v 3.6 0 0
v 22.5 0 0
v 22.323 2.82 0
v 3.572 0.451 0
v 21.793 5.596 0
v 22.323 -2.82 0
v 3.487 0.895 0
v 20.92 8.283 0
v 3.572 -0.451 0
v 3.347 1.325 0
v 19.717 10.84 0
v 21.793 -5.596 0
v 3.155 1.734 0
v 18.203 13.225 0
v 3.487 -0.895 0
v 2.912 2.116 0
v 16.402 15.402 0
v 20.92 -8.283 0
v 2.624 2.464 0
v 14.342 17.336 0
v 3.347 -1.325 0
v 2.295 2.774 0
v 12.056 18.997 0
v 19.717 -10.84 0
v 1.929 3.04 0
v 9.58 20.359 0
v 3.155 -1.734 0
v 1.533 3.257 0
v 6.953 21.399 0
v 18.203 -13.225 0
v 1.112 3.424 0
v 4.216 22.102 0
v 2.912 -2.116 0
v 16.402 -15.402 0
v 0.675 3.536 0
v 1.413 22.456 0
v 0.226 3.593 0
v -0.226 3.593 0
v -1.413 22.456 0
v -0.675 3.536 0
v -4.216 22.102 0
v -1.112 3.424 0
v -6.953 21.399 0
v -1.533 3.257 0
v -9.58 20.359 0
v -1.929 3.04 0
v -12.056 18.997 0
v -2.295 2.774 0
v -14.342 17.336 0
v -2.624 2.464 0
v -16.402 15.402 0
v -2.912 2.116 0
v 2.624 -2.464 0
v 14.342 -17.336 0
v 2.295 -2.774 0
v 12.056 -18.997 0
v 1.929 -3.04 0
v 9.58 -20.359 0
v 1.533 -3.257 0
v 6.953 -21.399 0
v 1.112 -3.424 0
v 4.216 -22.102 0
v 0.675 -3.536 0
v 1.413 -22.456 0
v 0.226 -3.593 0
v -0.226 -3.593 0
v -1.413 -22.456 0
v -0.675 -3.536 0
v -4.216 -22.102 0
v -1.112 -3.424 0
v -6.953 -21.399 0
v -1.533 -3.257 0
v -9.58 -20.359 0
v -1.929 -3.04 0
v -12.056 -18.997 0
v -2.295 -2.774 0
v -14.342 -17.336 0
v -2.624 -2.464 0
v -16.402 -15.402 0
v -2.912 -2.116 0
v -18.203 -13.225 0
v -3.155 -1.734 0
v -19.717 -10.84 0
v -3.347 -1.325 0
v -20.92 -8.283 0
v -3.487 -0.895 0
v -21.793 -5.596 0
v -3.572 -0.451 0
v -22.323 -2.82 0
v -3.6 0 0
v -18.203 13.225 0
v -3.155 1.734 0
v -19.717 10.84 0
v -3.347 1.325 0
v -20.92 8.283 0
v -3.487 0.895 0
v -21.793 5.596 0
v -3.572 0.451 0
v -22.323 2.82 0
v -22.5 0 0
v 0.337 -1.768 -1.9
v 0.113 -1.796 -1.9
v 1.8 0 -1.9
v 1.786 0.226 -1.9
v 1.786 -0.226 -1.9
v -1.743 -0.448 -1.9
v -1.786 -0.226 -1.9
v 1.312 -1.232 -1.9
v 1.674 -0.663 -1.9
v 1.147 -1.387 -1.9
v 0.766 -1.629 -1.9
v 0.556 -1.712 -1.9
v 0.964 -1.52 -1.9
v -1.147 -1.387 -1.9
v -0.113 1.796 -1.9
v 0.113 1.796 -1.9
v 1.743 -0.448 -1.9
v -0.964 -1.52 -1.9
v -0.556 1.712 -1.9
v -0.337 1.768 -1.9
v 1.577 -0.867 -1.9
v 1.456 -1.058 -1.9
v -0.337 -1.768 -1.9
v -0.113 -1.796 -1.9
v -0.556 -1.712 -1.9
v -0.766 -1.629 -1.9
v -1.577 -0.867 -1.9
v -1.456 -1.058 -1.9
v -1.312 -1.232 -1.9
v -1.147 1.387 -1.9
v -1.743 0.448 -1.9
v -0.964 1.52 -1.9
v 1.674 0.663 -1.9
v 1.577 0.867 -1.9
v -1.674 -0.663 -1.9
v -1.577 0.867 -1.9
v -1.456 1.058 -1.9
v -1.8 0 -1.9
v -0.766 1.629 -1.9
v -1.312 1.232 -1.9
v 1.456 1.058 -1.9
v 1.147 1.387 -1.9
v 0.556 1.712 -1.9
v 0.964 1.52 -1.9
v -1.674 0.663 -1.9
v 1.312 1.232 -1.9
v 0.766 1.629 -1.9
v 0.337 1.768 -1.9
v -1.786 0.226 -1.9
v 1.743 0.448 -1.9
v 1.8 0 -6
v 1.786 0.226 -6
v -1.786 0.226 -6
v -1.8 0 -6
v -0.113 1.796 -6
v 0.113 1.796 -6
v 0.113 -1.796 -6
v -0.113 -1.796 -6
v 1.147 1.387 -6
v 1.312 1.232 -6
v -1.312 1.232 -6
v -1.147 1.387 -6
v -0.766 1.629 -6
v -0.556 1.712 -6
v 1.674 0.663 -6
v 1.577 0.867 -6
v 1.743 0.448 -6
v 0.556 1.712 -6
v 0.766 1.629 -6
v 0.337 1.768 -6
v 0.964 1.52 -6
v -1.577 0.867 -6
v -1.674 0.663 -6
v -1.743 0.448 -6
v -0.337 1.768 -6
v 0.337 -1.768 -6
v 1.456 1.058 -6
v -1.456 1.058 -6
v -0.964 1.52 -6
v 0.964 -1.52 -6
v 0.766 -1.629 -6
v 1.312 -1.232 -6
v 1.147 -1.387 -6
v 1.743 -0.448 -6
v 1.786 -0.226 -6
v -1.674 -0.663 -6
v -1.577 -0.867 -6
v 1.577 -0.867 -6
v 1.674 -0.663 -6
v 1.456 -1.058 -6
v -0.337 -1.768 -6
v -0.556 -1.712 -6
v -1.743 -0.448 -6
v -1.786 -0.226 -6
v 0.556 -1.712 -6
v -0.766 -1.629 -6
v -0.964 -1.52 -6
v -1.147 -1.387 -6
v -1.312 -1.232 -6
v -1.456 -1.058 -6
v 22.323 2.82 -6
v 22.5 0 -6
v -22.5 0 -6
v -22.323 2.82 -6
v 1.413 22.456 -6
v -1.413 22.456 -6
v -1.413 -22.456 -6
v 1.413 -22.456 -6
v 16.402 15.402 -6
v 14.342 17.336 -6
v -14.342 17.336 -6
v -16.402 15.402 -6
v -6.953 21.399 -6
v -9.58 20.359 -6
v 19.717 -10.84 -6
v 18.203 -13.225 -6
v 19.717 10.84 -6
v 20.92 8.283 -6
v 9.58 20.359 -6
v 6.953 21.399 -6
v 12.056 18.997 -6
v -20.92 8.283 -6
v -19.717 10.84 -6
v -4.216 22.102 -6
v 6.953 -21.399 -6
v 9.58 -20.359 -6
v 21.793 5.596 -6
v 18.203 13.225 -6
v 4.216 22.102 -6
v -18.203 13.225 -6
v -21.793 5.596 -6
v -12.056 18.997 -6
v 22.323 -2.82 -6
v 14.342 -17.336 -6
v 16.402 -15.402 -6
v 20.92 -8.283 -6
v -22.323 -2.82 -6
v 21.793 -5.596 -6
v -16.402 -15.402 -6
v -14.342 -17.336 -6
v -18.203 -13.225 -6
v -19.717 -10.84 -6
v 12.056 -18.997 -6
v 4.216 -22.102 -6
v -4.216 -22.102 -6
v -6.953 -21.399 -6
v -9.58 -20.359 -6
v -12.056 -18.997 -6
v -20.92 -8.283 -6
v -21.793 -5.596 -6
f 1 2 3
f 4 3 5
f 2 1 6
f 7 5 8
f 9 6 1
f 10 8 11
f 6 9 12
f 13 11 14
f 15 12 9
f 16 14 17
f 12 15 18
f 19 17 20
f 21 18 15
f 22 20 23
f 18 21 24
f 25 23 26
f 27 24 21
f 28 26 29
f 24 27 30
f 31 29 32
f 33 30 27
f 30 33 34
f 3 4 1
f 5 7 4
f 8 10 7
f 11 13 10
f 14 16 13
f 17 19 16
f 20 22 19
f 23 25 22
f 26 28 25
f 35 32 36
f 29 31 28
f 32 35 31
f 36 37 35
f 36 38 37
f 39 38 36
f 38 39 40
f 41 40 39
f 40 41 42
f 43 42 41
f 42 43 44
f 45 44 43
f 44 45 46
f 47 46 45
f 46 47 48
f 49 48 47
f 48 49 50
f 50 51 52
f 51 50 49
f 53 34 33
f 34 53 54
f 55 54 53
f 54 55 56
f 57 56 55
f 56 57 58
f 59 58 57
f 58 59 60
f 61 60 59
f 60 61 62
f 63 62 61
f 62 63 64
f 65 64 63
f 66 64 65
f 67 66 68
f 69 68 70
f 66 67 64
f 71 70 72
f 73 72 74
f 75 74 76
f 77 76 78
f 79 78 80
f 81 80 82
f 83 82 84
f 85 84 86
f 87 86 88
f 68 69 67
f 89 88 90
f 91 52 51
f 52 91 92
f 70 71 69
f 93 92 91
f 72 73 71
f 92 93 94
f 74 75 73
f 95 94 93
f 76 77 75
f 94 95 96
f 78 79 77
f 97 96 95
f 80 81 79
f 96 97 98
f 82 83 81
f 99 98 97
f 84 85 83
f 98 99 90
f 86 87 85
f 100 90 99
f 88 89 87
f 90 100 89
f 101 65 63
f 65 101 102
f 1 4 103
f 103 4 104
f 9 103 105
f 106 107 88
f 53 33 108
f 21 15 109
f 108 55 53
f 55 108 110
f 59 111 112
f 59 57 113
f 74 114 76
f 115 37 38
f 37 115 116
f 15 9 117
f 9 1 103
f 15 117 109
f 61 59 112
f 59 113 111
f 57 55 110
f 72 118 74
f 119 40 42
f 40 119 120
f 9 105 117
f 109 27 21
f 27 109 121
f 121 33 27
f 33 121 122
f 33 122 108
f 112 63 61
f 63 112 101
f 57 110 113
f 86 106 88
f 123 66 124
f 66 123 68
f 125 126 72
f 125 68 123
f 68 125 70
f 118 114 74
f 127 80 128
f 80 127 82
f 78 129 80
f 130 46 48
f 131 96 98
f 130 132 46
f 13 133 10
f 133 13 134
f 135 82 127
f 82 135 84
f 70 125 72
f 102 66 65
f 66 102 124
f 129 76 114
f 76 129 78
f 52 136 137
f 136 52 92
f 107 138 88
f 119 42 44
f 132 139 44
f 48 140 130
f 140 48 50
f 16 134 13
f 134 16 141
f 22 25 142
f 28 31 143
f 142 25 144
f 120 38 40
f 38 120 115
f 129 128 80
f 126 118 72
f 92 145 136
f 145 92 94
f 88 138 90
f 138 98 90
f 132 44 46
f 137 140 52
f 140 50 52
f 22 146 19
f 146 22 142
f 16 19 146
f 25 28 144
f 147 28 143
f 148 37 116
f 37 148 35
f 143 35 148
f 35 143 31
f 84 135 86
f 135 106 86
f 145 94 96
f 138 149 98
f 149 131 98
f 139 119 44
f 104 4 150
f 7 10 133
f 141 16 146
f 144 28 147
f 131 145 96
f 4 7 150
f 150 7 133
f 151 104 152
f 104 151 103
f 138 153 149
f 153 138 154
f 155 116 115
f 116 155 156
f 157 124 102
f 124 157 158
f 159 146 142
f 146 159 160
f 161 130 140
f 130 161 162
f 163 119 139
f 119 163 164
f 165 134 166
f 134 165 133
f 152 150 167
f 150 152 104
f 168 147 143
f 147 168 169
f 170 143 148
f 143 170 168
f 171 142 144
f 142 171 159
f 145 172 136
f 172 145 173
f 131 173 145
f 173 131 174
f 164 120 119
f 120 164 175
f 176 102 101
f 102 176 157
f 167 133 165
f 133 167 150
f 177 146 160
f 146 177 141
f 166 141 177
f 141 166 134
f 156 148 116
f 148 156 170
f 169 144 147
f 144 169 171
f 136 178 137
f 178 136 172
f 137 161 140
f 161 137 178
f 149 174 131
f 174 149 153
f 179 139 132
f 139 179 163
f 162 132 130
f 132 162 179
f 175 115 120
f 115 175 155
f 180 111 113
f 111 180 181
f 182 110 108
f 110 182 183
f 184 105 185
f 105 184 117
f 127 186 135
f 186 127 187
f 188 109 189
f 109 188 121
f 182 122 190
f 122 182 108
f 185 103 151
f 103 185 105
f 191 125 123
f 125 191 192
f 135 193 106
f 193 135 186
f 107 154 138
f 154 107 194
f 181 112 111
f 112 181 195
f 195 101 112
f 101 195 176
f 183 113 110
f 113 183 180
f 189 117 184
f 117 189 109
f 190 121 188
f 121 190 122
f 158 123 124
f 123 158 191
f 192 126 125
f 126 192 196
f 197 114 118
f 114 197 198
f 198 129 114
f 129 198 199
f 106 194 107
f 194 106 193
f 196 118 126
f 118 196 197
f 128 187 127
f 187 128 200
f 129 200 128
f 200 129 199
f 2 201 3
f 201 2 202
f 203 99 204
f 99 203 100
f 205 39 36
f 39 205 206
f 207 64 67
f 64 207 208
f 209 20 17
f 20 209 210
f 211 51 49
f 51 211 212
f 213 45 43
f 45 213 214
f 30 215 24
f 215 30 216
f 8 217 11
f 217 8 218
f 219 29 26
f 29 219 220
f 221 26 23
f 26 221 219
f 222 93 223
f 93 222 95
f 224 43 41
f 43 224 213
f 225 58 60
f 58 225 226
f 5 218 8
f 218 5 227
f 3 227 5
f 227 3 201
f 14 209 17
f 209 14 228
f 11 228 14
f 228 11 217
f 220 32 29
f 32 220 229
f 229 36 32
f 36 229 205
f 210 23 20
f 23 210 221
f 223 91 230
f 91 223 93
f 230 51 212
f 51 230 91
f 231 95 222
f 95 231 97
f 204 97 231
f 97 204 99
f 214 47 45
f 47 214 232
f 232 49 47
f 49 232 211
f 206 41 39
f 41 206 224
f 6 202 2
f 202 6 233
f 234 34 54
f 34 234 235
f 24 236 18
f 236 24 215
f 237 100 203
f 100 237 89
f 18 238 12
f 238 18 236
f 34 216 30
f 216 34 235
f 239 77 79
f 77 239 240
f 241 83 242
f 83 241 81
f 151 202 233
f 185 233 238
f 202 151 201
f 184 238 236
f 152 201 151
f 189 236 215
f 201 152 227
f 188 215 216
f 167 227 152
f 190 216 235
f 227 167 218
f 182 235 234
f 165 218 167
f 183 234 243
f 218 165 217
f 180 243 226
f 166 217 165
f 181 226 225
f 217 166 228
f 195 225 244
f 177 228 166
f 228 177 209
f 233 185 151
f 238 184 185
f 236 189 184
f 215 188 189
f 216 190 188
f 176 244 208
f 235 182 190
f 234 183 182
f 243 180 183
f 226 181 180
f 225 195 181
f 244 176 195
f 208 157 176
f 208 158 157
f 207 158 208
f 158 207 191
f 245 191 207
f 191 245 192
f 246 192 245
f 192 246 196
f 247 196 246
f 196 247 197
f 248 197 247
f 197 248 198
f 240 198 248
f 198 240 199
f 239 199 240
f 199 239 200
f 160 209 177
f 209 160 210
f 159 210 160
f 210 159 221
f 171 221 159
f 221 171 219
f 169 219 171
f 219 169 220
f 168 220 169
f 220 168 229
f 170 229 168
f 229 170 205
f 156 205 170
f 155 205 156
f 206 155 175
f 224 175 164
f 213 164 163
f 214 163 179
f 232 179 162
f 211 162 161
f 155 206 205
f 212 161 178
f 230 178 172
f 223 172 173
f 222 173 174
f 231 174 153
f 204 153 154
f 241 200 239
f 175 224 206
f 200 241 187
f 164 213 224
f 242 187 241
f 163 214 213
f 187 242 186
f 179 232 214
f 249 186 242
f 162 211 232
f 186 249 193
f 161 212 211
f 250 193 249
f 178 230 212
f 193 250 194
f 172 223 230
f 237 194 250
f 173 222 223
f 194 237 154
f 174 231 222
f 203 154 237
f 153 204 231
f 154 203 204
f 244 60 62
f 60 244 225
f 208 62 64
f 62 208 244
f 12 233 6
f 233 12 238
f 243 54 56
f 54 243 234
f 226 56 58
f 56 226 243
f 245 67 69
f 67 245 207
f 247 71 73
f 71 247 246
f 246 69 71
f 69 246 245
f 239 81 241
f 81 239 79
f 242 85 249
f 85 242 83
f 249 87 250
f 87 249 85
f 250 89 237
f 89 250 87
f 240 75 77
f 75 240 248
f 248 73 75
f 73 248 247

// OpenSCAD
$fn = 50;


difference() {
	union() {
		translate(v = [0, 0, -6.0000000000]) {
			cylinder(h = 6, r = 22.5000000000);
		}
	}
	union() {
		translate(v = [0, 0, 0]) {
			rotate(a = [0, 0, 0]) {
				difference() {
					union() {
						translate(v = [0, 0, -9.0000000000]) {
							cylinder(h = 9, r = 1.5000000000);
						}
						translate(v = [0, 0, -1.9000000000]) {
							cylinder(h = 1.9000000000, r1 = 1.8000000000, r2 = 3.6000000000);
						}
						translate(v = [0, 0, -9.0000000000]) {
							cylinder(h = 9, r = 1.8000000000);
						}
						translate(v = [0, 0, -9.0000000000]) {
							cylinder(h = 9, r = 1.5000000000);
						}
					}
					union();
				}
			}
		}
	}
}
